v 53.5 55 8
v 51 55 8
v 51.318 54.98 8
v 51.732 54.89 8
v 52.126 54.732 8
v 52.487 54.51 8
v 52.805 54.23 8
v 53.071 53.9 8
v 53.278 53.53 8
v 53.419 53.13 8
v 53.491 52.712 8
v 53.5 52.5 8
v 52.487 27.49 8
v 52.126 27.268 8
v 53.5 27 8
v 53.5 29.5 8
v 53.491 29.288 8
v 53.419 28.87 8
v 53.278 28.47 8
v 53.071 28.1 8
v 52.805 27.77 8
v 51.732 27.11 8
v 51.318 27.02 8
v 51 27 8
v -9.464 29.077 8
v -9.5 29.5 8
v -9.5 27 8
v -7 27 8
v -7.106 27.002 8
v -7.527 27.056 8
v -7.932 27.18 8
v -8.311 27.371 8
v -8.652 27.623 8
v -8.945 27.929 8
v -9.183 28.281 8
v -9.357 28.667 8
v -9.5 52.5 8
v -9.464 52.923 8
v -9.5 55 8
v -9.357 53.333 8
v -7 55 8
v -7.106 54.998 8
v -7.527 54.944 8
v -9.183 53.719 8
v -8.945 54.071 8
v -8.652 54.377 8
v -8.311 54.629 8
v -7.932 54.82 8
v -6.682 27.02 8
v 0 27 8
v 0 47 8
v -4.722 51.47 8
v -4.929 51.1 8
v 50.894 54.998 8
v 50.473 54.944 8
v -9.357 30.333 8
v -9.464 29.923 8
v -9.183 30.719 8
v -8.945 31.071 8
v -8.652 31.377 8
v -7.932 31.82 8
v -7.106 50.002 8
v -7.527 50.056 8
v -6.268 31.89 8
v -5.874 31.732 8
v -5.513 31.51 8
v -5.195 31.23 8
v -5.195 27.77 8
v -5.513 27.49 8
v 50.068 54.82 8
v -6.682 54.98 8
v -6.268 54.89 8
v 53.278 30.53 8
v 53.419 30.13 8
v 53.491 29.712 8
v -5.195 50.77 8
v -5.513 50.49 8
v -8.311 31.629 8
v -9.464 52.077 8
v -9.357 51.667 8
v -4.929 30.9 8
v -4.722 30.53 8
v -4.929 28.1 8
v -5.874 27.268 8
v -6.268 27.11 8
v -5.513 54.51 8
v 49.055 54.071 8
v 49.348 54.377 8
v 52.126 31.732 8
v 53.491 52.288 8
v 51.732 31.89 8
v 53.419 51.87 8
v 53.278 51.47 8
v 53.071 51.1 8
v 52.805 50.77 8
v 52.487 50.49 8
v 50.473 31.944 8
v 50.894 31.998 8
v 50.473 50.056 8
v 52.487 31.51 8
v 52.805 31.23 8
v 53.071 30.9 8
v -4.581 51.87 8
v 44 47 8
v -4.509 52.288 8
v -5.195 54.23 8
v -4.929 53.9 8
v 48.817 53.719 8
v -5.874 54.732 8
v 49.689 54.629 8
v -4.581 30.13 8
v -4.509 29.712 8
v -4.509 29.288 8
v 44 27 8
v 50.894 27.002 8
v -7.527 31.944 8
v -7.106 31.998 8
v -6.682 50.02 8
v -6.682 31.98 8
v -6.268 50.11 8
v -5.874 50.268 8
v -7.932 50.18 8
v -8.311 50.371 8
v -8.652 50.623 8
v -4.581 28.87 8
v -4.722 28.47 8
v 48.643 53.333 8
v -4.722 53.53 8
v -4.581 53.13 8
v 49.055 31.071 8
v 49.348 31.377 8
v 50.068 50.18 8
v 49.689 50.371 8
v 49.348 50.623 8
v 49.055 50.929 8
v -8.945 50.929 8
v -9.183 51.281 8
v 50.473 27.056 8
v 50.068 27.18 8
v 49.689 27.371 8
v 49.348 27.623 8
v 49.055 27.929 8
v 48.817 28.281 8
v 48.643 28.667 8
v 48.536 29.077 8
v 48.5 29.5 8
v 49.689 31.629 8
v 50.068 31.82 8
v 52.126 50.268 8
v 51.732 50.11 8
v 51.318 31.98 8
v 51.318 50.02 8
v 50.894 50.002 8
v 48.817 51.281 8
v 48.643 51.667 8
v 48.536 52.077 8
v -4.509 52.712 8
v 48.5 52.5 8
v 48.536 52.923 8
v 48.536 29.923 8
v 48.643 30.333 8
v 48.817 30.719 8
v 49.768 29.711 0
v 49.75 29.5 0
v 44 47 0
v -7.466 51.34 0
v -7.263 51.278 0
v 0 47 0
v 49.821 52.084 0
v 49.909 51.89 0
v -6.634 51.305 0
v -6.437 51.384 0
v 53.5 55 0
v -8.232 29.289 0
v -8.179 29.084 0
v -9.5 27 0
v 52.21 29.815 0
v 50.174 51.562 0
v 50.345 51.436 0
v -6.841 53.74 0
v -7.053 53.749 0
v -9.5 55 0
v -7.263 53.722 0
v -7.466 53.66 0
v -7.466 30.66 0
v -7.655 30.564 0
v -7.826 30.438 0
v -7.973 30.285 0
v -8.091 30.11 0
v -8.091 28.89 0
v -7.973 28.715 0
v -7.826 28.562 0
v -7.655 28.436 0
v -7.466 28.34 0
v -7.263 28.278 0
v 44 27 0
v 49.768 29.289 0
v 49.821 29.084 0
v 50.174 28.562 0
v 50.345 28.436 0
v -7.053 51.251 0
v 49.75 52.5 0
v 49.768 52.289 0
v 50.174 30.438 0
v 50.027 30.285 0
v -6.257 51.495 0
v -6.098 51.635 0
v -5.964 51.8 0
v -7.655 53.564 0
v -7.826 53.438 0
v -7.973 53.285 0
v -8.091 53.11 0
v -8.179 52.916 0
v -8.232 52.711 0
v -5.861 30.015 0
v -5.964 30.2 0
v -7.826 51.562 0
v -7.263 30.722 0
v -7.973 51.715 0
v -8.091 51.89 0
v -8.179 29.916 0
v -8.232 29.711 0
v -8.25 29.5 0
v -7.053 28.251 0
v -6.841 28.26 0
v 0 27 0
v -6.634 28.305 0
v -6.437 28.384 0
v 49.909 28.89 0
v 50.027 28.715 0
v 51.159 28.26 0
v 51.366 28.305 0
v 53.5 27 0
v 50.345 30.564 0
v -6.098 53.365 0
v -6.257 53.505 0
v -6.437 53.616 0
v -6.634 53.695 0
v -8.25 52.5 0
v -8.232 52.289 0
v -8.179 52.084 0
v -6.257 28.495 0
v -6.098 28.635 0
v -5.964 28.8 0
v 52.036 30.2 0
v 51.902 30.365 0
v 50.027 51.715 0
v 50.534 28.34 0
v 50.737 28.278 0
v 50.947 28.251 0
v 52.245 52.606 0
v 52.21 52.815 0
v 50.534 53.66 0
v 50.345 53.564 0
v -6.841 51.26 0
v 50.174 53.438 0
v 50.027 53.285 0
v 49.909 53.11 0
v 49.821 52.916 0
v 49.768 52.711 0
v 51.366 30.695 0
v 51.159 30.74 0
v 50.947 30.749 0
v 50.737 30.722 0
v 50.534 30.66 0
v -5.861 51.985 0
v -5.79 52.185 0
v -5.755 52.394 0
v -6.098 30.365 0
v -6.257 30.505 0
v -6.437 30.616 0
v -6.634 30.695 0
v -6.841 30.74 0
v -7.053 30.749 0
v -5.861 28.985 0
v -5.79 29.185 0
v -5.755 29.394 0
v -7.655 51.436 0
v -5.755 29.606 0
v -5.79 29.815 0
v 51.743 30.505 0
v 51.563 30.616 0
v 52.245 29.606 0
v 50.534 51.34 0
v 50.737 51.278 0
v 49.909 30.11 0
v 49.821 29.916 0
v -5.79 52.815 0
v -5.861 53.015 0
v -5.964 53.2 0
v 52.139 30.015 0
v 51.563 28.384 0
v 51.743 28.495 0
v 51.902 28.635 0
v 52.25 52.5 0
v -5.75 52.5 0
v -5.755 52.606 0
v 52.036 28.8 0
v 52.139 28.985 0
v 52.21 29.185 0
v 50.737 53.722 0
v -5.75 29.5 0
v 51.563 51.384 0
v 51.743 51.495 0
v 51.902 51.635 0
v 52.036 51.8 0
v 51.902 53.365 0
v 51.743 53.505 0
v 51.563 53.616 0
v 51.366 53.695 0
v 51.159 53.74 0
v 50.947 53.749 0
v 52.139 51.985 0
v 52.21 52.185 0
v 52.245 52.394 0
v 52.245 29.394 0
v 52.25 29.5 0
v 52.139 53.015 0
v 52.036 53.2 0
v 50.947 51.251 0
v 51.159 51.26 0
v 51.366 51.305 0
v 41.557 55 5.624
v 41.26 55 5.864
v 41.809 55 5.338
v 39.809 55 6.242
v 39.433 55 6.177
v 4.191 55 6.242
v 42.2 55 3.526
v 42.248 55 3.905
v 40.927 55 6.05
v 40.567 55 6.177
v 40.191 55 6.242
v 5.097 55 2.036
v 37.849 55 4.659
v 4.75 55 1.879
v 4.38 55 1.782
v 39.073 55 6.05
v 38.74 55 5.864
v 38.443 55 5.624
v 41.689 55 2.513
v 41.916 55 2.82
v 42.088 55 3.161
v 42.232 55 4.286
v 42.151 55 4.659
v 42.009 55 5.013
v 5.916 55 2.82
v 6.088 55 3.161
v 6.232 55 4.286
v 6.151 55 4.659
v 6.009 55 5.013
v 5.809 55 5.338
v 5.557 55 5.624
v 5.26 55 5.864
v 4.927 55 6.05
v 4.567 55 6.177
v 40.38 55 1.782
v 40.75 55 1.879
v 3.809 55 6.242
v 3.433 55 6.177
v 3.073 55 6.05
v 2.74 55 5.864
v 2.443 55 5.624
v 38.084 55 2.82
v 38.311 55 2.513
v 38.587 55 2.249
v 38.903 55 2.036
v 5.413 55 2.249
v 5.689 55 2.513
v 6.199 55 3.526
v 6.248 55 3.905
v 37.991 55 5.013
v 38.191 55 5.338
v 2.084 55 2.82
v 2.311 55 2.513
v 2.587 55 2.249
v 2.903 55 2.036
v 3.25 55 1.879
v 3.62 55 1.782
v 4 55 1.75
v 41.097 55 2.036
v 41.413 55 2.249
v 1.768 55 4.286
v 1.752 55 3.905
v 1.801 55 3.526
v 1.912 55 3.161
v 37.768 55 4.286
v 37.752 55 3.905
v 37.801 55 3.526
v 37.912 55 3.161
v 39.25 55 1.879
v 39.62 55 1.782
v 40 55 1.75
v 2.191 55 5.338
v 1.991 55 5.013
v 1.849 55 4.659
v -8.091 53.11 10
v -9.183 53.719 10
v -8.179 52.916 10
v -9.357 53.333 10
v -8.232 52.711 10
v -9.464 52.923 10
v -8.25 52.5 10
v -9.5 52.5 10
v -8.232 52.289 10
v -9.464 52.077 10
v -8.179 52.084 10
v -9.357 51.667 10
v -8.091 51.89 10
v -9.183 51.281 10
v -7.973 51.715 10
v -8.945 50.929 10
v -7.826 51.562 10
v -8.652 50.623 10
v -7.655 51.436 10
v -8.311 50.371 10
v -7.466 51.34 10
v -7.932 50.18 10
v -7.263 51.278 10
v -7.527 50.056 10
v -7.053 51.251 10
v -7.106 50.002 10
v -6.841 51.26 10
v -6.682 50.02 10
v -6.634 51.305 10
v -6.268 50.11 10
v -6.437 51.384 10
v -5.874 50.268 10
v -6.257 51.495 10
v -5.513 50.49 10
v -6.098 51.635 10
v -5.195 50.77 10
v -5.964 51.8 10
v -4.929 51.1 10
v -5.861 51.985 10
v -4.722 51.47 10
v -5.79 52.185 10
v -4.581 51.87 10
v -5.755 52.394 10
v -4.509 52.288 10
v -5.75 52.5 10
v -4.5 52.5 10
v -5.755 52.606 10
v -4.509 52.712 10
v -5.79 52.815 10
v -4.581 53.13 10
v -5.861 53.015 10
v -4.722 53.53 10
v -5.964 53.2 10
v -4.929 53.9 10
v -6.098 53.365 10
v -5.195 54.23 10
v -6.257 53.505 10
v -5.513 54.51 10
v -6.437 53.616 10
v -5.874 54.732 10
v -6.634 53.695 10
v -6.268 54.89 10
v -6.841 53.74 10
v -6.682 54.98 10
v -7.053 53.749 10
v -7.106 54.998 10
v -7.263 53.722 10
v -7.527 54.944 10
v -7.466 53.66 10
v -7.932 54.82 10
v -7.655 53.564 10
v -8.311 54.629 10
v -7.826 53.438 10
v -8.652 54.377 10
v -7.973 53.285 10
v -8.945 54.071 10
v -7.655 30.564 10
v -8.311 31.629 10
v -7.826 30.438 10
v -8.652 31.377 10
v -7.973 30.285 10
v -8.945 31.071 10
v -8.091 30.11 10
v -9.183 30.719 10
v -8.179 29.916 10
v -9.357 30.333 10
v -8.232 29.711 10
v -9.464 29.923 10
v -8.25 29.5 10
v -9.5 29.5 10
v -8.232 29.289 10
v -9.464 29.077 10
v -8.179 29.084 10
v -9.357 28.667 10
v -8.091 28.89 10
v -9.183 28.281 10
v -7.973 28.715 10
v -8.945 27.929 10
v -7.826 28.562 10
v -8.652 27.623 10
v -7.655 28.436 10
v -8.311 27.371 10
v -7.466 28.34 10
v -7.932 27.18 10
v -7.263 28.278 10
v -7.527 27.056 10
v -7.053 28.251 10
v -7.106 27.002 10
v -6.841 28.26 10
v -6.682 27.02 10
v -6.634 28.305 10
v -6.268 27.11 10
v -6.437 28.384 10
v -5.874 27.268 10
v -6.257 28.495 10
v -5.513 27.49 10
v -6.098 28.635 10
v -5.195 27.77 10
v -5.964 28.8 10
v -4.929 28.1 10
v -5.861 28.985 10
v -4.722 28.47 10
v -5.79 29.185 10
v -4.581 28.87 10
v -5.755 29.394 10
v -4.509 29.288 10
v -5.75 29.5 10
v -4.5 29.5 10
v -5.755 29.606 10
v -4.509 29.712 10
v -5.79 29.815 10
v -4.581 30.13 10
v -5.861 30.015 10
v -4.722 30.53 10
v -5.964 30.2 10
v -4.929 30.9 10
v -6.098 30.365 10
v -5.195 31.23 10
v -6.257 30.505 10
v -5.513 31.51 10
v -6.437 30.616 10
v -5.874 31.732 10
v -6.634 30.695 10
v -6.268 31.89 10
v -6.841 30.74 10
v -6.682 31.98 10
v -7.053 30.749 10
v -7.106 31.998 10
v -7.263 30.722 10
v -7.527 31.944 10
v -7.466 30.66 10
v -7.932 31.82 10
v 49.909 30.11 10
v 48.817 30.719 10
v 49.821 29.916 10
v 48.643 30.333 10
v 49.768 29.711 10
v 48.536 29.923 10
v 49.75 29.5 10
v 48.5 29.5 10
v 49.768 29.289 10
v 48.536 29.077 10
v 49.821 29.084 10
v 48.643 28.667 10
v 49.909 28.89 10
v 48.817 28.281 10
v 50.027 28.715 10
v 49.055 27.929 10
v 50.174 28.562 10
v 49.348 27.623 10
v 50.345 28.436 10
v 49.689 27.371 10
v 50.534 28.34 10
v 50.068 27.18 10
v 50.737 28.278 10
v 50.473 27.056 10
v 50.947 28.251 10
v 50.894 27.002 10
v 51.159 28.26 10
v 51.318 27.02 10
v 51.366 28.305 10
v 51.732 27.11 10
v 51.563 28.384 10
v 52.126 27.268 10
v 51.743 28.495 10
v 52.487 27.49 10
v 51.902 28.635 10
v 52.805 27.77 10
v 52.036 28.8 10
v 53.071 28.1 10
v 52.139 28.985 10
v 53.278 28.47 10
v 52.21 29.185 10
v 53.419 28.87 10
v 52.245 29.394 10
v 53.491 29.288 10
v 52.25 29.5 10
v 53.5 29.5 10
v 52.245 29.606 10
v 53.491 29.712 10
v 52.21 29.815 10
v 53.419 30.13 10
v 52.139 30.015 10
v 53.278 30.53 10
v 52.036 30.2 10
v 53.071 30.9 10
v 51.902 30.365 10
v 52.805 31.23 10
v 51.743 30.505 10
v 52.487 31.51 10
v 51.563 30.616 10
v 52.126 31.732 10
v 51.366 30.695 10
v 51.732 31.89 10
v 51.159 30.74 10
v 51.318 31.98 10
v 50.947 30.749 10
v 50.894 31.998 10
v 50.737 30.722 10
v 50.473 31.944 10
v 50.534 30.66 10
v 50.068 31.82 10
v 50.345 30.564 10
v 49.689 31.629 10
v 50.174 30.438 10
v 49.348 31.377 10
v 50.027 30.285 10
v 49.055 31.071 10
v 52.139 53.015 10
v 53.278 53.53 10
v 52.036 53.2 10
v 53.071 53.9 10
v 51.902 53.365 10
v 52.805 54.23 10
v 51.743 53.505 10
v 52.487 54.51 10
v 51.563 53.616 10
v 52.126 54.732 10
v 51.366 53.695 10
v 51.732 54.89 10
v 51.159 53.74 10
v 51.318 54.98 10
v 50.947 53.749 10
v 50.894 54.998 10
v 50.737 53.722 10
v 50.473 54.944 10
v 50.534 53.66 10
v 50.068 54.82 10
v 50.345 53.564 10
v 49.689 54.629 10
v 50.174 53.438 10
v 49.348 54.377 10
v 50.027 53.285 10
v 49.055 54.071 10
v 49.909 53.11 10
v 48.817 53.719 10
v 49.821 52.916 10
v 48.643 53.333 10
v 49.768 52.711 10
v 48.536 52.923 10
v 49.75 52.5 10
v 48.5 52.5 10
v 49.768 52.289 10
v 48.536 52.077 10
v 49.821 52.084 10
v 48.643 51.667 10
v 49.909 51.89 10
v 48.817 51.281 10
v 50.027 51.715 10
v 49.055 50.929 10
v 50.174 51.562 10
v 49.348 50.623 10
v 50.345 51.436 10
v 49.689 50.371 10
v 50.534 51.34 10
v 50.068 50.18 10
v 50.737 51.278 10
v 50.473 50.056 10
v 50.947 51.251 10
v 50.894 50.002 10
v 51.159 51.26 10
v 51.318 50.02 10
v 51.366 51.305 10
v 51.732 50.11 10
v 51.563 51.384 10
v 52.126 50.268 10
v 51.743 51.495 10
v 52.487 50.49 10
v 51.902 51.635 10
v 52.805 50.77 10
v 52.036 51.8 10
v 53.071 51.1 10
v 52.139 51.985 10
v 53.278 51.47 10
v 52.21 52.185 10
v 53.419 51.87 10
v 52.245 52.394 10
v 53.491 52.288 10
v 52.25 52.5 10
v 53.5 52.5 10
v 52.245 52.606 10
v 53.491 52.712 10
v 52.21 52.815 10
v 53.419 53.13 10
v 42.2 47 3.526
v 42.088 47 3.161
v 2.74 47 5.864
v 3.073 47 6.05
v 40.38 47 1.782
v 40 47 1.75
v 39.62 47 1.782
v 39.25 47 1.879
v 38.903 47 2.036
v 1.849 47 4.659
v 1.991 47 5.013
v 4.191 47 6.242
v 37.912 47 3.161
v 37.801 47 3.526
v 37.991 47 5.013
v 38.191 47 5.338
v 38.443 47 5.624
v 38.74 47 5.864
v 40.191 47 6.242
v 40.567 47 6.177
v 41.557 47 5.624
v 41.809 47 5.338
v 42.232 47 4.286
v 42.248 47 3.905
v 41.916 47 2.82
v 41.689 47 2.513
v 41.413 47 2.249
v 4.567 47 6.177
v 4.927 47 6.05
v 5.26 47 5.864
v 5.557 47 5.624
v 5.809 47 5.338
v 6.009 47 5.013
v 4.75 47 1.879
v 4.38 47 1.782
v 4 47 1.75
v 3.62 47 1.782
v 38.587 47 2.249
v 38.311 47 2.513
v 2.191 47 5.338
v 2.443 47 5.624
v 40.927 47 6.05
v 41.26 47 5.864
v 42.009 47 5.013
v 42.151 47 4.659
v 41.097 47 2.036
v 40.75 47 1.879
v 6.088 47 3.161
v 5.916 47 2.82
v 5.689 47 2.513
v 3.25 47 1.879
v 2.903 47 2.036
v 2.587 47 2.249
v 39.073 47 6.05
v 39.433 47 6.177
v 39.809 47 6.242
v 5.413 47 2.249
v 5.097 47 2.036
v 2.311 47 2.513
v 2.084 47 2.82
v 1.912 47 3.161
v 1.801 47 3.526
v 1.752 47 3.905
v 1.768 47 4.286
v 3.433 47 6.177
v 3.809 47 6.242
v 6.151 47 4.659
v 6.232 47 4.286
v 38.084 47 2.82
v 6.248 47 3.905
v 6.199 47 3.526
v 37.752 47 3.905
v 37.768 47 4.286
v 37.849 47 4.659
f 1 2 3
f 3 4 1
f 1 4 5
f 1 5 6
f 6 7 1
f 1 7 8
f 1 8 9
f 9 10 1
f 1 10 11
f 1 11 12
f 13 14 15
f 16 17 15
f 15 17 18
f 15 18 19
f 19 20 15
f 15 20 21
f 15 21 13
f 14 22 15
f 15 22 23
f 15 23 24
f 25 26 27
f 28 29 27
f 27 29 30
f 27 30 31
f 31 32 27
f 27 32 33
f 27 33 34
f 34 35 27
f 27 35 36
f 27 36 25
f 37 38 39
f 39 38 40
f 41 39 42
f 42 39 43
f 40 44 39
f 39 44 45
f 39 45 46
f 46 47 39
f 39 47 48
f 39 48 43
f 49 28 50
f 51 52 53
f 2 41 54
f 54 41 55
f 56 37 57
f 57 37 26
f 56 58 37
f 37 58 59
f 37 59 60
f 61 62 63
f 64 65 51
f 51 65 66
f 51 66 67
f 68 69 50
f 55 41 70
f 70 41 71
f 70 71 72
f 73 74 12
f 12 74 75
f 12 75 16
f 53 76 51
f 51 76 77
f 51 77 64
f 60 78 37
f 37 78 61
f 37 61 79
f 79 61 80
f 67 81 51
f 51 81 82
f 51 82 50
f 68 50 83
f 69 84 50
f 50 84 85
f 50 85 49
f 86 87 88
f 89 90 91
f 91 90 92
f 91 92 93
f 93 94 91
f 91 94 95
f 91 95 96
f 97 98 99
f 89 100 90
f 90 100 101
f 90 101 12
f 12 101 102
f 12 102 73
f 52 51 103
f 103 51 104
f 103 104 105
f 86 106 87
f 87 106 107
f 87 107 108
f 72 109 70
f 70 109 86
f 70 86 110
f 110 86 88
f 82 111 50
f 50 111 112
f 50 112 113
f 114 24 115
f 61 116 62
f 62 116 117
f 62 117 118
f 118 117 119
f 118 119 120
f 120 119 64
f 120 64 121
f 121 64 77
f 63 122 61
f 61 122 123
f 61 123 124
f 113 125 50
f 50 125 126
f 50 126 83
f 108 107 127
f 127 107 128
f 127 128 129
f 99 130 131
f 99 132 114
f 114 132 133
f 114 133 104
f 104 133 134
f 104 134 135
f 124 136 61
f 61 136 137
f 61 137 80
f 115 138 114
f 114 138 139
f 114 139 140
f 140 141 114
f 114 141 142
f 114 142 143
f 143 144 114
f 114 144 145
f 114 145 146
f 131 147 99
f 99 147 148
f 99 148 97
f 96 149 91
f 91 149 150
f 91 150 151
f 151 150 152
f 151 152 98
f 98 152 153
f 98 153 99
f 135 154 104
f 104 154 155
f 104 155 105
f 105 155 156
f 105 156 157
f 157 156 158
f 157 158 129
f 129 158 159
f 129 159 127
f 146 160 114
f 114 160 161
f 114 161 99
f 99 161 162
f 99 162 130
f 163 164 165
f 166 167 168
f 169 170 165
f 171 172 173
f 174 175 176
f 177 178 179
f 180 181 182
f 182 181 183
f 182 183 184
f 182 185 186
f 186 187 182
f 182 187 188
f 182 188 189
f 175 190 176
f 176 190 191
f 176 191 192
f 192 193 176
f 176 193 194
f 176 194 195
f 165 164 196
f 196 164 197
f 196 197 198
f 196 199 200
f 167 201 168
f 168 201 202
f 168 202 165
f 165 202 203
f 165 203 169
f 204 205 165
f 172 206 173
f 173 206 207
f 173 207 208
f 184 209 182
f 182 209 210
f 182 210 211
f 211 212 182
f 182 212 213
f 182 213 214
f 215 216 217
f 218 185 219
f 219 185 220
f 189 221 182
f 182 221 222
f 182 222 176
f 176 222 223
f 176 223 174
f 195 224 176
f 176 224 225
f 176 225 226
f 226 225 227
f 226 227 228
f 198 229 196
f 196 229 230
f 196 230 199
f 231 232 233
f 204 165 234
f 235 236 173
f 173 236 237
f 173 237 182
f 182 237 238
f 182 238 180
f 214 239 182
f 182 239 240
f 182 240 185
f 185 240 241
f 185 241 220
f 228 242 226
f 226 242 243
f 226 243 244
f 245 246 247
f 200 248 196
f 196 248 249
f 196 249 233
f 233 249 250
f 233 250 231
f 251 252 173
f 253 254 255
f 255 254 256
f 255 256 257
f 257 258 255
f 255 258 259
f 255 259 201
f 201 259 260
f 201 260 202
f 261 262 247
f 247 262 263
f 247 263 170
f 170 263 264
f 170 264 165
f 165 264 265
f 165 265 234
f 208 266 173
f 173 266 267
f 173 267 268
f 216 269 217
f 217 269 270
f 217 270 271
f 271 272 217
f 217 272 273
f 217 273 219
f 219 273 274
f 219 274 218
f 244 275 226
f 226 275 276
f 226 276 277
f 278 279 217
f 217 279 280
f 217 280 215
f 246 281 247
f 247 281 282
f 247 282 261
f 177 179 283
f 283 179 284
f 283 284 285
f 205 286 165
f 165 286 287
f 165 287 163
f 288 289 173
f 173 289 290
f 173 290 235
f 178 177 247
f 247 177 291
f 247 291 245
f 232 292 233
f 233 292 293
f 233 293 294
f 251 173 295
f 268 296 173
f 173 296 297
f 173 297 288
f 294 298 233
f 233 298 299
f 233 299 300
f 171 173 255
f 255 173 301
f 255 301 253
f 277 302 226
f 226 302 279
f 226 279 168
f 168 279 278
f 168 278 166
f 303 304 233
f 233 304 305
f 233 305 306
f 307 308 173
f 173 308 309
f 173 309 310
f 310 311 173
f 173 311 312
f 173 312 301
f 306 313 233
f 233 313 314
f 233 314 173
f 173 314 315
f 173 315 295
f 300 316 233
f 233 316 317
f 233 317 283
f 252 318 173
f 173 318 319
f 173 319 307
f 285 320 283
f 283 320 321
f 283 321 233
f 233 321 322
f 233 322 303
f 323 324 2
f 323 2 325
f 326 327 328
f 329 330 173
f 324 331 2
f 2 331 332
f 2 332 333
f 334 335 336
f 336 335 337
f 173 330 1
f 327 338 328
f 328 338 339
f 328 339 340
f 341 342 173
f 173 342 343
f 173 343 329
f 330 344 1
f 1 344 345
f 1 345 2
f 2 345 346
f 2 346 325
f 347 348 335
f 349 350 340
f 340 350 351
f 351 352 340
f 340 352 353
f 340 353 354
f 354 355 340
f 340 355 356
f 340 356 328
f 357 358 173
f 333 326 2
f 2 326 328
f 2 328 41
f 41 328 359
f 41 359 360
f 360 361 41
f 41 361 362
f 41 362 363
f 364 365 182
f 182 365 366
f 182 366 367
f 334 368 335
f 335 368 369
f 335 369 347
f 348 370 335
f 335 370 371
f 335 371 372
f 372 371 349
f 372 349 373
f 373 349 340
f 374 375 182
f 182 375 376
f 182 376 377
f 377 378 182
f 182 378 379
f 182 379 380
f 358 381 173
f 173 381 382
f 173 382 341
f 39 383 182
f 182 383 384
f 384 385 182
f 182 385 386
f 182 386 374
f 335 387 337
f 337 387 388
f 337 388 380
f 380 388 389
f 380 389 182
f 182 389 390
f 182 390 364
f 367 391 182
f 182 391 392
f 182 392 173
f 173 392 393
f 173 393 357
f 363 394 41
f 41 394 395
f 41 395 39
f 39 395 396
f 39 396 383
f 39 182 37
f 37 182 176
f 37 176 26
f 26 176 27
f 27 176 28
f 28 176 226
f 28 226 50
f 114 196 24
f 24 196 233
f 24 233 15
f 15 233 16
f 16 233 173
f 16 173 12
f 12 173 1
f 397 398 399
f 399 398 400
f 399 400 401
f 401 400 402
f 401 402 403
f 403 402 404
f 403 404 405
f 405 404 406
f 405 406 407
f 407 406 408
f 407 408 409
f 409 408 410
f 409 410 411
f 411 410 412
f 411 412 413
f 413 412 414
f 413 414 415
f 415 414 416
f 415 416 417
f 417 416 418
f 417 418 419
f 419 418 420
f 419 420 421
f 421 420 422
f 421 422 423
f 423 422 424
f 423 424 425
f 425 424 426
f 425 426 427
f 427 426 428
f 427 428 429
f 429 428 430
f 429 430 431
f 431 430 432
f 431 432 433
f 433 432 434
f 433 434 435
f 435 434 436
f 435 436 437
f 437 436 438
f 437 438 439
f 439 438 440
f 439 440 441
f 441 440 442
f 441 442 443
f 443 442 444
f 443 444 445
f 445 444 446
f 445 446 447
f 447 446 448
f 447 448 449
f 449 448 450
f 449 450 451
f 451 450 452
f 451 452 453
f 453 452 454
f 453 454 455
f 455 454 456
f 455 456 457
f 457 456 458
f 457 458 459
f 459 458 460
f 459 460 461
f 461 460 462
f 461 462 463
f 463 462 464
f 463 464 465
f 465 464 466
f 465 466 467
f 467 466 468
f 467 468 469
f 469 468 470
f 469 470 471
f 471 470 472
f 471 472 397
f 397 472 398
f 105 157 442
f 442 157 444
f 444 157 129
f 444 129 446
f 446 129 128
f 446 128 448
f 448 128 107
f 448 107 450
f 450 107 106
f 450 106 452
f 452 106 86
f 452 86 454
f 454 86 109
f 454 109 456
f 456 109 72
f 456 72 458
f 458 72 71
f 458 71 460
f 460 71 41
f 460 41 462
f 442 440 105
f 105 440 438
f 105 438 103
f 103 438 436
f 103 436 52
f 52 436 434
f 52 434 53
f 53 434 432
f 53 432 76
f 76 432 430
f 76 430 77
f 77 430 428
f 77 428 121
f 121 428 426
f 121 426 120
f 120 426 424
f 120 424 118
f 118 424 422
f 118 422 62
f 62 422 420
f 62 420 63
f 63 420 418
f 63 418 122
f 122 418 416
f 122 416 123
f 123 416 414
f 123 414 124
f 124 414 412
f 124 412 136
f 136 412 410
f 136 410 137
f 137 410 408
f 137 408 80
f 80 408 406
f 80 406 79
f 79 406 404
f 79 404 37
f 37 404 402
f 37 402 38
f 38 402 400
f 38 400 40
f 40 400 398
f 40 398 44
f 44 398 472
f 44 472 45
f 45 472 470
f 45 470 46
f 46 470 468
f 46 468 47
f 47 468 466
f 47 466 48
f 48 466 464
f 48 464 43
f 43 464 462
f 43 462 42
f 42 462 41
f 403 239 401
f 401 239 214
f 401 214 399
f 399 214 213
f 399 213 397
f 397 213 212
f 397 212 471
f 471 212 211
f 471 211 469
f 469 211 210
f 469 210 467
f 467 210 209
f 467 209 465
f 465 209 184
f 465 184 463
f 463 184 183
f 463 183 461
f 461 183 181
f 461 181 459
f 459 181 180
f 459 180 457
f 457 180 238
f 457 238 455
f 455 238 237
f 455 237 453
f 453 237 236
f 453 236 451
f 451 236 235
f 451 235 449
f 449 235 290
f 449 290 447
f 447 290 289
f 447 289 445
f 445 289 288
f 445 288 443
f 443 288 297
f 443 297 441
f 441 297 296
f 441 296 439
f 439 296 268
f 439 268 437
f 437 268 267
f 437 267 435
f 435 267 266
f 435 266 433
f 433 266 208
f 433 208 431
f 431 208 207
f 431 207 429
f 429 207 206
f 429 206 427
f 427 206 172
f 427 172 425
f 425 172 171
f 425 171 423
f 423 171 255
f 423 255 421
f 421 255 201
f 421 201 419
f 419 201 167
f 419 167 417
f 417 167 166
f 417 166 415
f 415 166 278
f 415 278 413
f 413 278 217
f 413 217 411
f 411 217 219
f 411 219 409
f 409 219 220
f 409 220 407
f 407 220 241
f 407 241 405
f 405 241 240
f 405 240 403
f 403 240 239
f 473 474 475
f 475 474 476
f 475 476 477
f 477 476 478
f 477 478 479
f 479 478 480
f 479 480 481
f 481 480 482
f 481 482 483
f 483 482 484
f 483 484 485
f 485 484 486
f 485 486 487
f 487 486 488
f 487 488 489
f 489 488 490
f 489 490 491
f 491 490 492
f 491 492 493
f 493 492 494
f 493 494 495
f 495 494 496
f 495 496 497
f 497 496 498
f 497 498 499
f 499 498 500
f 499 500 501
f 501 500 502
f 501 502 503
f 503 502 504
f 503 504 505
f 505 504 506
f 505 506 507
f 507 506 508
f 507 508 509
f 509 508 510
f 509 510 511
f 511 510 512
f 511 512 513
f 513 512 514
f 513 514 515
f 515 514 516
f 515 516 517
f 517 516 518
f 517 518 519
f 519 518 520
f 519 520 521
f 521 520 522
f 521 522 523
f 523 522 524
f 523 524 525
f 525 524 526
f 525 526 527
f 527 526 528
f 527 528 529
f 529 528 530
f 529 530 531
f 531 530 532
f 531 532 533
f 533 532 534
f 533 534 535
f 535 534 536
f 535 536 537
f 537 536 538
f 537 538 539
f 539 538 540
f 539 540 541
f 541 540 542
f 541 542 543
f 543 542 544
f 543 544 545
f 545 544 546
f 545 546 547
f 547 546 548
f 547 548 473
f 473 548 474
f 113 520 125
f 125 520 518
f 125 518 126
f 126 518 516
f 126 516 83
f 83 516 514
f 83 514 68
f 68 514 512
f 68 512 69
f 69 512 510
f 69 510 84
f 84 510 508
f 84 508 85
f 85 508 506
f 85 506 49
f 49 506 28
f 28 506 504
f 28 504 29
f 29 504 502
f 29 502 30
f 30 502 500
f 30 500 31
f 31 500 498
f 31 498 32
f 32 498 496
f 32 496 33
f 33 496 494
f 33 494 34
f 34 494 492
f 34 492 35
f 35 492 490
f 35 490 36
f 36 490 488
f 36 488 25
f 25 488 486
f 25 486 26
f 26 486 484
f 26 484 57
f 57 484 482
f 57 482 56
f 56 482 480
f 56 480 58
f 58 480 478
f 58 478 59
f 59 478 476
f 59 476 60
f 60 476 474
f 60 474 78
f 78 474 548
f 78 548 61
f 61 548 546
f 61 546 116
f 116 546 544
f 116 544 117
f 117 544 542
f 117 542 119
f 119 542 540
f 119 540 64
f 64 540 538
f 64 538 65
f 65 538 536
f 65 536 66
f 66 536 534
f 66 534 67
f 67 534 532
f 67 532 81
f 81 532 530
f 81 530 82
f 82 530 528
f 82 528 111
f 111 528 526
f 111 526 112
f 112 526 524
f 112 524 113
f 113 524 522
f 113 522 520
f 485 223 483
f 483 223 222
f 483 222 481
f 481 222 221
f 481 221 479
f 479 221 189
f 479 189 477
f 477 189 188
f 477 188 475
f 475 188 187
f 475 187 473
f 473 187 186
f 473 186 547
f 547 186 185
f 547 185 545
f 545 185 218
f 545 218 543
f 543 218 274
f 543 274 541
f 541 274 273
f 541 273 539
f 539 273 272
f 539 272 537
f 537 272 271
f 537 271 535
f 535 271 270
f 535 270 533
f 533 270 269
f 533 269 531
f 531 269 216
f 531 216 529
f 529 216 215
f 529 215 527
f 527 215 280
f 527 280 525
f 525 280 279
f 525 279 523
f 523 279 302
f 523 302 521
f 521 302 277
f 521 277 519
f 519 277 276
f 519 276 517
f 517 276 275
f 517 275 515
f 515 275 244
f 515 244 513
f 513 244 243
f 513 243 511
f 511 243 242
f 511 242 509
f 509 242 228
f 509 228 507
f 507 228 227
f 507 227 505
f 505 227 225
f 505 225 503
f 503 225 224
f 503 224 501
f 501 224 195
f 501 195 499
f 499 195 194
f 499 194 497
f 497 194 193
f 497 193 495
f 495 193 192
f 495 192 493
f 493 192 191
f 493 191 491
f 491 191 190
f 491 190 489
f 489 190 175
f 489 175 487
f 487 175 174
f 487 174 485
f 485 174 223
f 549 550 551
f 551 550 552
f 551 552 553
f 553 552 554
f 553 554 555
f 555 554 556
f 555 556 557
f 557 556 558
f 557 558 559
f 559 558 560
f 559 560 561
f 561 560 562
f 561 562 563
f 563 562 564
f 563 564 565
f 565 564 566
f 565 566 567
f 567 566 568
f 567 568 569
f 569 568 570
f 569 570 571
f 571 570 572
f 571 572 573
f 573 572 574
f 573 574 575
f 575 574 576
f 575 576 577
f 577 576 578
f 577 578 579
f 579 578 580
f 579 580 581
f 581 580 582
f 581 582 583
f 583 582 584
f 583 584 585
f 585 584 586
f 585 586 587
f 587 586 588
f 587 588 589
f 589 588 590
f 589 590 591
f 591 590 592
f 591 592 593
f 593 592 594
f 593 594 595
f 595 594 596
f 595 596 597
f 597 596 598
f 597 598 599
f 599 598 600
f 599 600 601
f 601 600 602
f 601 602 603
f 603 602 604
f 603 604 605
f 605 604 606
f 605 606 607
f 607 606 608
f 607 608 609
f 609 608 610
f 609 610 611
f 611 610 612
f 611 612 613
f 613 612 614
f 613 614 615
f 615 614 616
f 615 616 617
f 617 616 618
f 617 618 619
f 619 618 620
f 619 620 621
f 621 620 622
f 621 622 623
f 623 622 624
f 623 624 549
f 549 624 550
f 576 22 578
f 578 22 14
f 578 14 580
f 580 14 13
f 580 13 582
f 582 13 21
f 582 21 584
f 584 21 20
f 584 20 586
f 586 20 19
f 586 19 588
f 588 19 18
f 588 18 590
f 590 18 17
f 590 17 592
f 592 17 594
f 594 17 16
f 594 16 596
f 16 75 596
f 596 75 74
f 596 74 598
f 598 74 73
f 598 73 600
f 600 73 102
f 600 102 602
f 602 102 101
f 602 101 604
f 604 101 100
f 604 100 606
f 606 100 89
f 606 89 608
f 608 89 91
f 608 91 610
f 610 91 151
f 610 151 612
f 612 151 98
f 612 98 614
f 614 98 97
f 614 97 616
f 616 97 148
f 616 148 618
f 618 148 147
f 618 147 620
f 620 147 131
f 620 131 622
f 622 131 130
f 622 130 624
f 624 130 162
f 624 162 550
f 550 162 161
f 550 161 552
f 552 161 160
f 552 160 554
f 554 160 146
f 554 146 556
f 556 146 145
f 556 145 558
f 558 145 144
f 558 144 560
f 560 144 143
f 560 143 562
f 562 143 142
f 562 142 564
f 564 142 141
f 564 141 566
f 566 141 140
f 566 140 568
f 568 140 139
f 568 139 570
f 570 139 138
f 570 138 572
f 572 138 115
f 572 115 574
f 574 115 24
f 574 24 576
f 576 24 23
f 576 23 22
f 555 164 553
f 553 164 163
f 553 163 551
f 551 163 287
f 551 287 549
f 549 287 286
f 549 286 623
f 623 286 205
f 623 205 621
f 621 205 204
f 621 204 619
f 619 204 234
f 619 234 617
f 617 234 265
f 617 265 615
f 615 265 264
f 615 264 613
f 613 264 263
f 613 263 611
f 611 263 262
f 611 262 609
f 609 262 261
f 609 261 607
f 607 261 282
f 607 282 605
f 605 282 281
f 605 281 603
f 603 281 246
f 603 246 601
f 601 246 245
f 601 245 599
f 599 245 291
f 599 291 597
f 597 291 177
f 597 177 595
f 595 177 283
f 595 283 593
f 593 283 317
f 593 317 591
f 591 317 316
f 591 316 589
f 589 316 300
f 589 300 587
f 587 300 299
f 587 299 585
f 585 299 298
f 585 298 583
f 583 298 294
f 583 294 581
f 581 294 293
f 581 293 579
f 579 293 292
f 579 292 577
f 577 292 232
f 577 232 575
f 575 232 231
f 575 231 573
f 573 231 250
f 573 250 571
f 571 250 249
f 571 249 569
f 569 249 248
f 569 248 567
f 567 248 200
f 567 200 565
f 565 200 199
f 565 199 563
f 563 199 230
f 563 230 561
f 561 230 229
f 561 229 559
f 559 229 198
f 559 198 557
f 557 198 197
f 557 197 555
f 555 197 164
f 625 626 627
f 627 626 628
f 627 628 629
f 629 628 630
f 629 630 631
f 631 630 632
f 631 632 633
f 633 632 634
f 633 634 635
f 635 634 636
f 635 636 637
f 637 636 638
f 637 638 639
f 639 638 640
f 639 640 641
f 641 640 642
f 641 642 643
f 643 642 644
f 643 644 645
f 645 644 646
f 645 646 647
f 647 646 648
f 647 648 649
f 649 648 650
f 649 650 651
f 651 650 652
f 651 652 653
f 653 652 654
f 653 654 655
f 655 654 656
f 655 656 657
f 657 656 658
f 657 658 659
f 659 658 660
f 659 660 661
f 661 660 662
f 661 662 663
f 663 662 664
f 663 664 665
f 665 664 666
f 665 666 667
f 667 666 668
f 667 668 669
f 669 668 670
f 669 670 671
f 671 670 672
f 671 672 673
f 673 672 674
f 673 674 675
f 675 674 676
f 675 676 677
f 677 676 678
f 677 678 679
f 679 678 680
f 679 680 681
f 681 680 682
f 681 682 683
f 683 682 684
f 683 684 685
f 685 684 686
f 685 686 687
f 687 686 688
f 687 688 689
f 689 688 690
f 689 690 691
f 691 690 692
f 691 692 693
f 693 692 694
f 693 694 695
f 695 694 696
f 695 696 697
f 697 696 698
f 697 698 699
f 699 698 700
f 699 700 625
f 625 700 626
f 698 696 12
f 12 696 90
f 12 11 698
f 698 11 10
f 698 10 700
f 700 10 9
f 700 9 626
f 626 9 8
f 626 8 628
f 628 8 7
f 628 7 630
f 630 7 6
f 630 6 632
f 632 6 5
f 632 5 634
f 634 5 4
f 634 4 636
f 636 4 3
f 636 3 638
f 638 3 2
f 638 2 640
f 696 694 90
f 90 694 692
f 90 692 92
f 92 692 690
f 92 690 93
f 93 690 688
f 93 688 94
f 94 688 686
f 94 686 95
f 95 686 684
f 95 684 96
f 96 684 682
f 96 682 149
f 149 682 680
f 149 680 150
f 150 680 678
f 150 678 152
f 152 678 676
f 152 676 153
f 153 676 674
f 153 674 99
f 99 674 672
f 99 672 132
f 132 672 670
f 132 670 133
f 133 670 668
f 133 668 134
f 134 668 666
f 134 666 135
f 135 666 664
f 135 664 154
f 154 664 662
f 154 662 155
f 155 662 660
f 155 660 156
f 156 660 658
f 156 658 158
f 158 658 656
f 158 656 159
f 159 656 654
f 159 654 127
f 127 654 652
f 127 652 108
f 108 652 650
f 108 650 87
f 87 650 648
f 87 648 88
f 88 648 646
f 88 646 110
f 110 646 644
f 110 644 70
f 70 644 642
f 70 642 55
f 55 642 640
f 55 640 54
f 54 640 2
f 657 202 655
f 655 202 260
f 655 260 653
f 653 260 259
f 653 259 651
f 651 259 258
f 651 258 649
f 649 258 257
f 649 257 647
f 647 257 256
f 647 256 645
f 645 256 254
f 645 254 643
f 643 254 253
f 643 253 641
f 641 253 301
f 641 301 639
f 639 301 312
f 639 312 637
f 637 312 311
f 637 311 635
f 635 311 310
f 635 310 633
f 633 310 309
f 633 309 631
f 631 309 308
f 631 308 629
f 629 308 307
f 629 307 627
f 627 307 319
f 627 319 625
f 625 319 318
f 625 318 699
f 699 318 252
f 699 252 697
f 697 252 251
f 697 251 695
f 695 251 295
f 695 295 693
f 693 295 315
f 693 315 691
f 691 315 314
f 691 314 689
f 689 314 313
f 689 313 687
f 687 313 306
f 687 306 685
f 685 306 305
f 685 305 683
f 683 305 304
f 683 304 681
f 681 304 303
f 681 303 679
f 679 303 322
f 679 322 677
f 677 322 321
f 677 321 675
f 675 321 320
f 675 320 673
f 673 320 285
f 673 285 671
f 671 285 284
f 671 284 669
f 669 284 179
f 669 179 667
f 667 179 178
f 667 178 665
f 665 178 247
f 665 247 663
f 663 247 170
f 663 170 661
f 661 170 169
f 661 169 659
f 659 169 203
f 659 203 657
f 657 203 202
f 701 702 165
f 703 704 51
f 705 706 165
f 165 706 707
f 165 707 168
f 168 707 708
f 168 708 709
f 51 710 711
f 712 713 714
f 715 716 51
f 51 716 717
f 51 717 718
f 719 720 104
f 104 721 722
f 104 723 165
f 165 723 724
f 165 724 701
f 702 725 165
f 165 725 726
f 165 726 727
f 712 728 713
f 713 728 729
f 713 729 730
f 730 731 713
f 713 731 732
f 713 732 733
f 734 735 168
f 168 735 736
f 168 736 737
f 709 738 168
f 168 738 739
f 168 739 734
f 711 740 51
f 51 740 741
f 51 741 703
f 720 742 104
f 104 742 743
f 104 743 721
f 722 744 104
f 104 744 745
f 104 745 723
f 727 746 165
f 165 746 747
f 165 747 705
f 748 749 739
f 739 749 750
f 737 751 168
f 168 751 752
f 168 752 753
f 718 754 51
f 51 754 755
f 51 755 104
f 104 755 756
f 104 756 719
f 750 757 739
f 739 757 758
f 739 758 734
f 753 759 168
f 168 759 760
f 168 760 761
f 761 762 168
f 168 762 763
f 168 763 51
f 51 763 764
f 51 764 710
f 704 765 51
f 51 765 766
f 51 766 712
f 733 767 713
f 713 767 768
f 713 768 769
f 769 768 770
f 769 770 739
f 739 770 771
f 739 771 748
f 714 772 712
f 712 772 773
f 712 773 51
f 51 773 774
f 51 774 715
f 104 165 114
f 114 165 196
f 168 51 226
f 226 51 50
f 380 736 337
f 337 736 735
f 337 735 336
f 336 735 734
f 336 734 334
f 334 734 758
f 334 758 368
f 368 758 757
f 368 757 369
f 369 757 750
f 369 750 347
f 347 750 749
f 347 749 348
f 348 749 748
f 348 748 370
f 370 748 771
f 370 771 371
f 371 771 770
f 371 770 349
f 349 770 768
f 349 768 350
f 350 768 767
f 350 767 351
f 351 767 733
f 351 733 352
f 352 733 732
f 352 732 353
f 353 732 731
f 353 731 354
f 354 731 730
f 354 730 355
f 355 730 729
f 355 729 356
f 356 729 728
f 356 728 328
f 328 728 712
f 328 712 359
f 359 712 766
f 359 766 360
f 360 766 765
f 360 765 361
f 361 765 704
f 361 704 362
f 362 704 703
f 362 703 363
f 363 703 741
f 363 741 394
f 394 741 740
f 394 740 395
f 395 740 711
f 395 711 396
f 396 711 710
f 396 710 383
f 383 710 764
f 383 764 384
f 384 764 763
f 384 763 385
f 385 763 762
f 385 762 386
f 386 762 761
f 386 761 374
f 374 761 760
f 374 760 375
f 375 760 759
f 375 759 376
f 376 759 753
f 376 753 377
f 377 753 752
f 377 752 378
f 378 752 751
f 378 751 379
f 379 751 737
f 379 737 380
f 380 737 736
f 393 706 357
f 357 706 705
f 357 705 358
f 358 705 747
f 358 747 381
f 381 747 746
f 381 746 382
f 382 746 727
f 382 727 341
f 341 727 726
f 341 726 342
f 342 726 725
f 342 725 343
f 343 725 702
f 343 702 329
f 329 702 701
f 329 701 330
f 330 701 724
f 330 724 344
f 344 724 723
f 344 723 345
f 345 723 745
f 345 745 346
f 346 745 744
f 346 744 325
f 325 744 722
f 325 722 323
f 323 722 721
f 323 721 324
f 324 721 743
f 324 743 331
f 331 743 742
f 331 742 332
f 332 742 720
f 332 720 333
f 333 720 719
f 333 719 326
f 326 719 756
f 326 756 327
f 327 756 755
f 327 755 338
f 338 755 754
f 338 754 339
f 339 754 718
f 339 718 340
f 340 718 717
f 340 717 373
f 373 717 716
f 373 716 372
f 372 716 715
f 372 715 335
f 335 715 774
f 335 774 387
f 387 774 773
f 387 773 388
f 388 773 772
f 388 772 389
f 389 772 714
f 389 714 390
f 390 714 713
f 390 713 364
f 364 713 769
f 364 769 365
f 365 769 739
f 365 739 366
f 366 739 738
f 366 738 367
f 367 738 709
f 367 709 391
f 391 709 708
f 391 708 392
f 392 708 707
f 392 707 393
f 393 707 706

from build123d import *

# Parameters (mm, degrees)
SCHIZZO1_W                   = 28
SCHIZZO1_H                   = 39
ESTRUSIONE_ESTRUSIONE1_DEPTH = 8
SCHIZZO2_R                   = 1.75
TAGLIO_ESTRUSIONE1_DEPTH     = 20
ESTRUSIONE_ESTRUSIONE2_DEPTH = 8
SCHIZZO4_R                   = 2.5
SCHIZZO4_R_2                 = 1.25
ESTRUSIONE_ESTRUSIONE3_DEPTH = 2
SCHIZZO5_R                   = 1.25
TAGLIO_ESTRUSIONE2_DEPTH     = 78.144345224
SCHIZZO6_W                   = 28
SCHIZZO6_H                   = 8
TAGLIO_ESTRUSIONE3_DEPTH     = 10
SCHIZZO7_W                   = 28
SCHIZZO7_H                   = 8
ESTRUSIONE_ESTRUSIONE4_DEPTH = 8
SCHIZZO8_W                   = 44
SCHIZZO8_H                   = 47
TAGLIO_ESTRUSIONE4_DEPTH     = 8
SCHIZZO9_R                   = 2.25
TAGLIO_ESTRUSIONE5_DEPTH     = 8


with BuildPart() as part:
    # Schizzo1 → Estrusione-Estrusione1 (new body)
    with BuildSketch(Plane.XY):
        Polygon((0, 0), (0, 55), (44, 55), (44, 0), (36, 0), (8, 0), align=None)
        with Locations((22, 27.5)):
            Rectangle(SCHIZZO1_W, SCHIZZO1_H, mode=Mode.SUBTRACT)
    extrude(amount=ESTRUSIONE_ESTRUSIONE1_DEPTH)

    # Schizzo2 → Taglio-Estrusione1 (cut)
    with BuildSketch(Plane.XZ):
        with Locations((4, 4)):
            Circle(SCHIZZO2_R)
        with Locations((40, 4)):
            Circle(SCHIZZO2_R)
    extrude(amount=-TAGLIO_ESTRUSIONE1_DEPTH, mode=Mode.SUBTRACT)

    # Schizzo3 → Estrusione-Estrusione2 (add)
    with BuildSketch(Plane.XY.offset(8)):
        Polygon((-9.5, 55), (53.5, 55), (53.5, 27), (36, 27), (36, 47), (8, 47), (8, 27), (-9.5, 27), align=None)
    extrude(amount=-ESTRUSIONE_ESTRUSIONE2_DEPTH)

    # Schizzo4 → Estrusione-Estrusione3 (add)
    # profile 1 of 4: a face of its own
    with BuildSketch(Plane.XY.offset(8)):
        with Locations(Location((-7, 52.5, 0), (0, 0, 180))):
            Circle(SCHIZZO4_R)
        with Locations((-7, 52.5)):
            Circle(SCHIZZO4_R_2, mode=Mode.SUBTRACT)
    # profile 2 of 4: a face of its own
    with BuildSketch(Plane.XY.offset(8)):
        with Locations(Location((-7, 29.5, 0), (0, 0, 180))):
            Circle(SCHIZZO4_R)
        with Locations((-7, 29.5)):
            Circle(SCHIZZO4_R_2, mode=Mode.SUBTRACT)
    # profile 3 of 4: a face of its own
    with BuildSketch(Plane.XY.offset(8)):
        with Locations((51, 29.5)):
            Circle(SCHIZZO4_R)
        with Locations((51, 29.5)):
            Circle(SCHIZZO4_R_2, mode=Mode.SUBTRACT)
    # profile 4 of 4: a face of its own
    with BuildSketch(Plane.XY.offset(8)):
        with Locations((51, 52.5)):
            Circle(SCHIZZO4_R)
        with Locations((51, 52.5)):
            Circle(SCHIZZO4_R_2, mode=Mode.SUBTRACT)
    extrude(amount=ESTRUSIONE_ESTRUSIONE3_DEPTH)

    # Schizzo5 → Taglio-Estrusione2 (cut, through all)
    with BuildSketch(Plane.XY.offset(8)):
        with Locations((-7, 52.5)):
            Circle(SCHIZZO5_R)
        with Locations((-7, 29.5)):
            Circle(SCHIZZO5_R)
        with Locations((51, 52.5)):
            Circle(SCHIZZO5_R)
        with Locations((51, 29.5)):
            Circle(SCHIZZO5_R)
    extrude(amount=-TAGLIO_ESTRUSIONE2_DEPTH, mode=Mode.SUBTRACT)

    # Schizzo6 → Taglio-Estrusione3 (cut)
    with BuildSketch(Plane.XY.offset(8)):
        with Locations((22, 51)):
            Rectangle(SCHIZZO6_W, SCHIZZO6_H)
    extrude(amount=-TAGLIO_ESTRUSIONE3_DEPTH, mode=Mode.SUBTRACT)

    # Schizzo7 → Estrusione-Estrusione4 (add)
    with BuildSketch(Plane.XY.offset(8)):
        with Locations((22, 51)):
            Rectangle(SCHIZZO7_W, SCHIZZO7_H)
    extrude(amount=-ESTRUSIONE_ESTRUSIONE4_DEPTH)

    # Schizzo8 → Taglio-Estrusione4 (cut)
    with BuildSketch(Plane.XY.offset(8)):
        with Locations((22, 23.5)):
            Rectangle(SCHIZZO8_W, SCHIZZO8_H)
    extrude(amount=-TAGLIO_ESTRUSIONE4_DEPTH, mode=Mode.SUBTRACT)

    # Schizzo9 → Taglio-Estrusione5 (cut)
    with BuildSketch(Plane.XZ.offset(-47)):
        with Locations(Location((4, 4, 0), (0, 0, 270))):
            Circle(SCHIZZO9_R)
        with Locations(Location((40, 4, 0), (0, 0, 270))):
            Circle(SCHIZZO9_R)
    extrude(amount=-TAGLIO_ESTRUSIONE5_DEPTH, mode=Mode.SUBTRACT)


solid = part.part
